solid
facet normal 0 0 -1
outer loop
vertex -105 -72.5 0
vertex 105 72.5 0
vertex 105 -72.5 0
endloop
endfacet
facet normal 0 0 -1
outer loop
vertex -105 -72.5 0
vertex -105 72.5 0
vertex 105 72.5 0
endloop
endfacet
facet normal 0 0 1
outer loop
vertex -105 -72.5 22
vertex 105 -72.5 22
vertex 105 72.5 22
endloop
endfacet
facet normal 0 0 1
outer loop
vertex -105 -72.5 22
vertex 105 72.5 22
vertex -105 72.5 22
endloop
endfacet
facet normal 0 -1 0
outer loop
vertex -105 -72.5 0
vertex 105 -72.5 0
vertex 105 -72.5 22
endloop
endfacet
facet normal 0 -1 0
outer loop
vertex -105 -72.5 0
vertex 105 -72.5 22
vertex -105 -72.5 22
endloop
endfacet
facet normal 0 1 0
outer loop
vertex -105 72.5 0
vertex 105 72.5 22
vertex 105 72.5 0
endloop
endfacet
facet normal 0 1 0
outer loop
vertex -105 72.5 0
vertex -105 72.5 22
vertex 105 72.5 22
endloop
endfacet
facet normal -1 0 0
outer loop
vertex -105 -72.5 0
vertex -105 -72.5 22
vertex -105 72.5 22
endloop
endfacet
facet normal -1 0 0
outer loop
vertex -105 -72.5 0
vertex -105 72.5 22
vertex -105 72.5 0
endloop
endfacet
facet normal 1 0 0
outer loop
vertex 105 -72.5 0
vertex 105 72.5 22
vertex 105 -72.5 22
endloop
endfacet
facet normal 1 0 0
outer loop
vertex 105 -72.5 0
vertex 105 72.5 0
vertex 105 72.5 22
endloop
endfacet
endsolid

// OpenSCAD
// Gemini 4 Argon Parametric OpenSCAD — PRT-01: Dual-Bay SBS 96-Well Microplate Indexing Deck
$fn = 64;
translate([-105.00, -72.50, 0])
  cube([210, 145, 22]);
